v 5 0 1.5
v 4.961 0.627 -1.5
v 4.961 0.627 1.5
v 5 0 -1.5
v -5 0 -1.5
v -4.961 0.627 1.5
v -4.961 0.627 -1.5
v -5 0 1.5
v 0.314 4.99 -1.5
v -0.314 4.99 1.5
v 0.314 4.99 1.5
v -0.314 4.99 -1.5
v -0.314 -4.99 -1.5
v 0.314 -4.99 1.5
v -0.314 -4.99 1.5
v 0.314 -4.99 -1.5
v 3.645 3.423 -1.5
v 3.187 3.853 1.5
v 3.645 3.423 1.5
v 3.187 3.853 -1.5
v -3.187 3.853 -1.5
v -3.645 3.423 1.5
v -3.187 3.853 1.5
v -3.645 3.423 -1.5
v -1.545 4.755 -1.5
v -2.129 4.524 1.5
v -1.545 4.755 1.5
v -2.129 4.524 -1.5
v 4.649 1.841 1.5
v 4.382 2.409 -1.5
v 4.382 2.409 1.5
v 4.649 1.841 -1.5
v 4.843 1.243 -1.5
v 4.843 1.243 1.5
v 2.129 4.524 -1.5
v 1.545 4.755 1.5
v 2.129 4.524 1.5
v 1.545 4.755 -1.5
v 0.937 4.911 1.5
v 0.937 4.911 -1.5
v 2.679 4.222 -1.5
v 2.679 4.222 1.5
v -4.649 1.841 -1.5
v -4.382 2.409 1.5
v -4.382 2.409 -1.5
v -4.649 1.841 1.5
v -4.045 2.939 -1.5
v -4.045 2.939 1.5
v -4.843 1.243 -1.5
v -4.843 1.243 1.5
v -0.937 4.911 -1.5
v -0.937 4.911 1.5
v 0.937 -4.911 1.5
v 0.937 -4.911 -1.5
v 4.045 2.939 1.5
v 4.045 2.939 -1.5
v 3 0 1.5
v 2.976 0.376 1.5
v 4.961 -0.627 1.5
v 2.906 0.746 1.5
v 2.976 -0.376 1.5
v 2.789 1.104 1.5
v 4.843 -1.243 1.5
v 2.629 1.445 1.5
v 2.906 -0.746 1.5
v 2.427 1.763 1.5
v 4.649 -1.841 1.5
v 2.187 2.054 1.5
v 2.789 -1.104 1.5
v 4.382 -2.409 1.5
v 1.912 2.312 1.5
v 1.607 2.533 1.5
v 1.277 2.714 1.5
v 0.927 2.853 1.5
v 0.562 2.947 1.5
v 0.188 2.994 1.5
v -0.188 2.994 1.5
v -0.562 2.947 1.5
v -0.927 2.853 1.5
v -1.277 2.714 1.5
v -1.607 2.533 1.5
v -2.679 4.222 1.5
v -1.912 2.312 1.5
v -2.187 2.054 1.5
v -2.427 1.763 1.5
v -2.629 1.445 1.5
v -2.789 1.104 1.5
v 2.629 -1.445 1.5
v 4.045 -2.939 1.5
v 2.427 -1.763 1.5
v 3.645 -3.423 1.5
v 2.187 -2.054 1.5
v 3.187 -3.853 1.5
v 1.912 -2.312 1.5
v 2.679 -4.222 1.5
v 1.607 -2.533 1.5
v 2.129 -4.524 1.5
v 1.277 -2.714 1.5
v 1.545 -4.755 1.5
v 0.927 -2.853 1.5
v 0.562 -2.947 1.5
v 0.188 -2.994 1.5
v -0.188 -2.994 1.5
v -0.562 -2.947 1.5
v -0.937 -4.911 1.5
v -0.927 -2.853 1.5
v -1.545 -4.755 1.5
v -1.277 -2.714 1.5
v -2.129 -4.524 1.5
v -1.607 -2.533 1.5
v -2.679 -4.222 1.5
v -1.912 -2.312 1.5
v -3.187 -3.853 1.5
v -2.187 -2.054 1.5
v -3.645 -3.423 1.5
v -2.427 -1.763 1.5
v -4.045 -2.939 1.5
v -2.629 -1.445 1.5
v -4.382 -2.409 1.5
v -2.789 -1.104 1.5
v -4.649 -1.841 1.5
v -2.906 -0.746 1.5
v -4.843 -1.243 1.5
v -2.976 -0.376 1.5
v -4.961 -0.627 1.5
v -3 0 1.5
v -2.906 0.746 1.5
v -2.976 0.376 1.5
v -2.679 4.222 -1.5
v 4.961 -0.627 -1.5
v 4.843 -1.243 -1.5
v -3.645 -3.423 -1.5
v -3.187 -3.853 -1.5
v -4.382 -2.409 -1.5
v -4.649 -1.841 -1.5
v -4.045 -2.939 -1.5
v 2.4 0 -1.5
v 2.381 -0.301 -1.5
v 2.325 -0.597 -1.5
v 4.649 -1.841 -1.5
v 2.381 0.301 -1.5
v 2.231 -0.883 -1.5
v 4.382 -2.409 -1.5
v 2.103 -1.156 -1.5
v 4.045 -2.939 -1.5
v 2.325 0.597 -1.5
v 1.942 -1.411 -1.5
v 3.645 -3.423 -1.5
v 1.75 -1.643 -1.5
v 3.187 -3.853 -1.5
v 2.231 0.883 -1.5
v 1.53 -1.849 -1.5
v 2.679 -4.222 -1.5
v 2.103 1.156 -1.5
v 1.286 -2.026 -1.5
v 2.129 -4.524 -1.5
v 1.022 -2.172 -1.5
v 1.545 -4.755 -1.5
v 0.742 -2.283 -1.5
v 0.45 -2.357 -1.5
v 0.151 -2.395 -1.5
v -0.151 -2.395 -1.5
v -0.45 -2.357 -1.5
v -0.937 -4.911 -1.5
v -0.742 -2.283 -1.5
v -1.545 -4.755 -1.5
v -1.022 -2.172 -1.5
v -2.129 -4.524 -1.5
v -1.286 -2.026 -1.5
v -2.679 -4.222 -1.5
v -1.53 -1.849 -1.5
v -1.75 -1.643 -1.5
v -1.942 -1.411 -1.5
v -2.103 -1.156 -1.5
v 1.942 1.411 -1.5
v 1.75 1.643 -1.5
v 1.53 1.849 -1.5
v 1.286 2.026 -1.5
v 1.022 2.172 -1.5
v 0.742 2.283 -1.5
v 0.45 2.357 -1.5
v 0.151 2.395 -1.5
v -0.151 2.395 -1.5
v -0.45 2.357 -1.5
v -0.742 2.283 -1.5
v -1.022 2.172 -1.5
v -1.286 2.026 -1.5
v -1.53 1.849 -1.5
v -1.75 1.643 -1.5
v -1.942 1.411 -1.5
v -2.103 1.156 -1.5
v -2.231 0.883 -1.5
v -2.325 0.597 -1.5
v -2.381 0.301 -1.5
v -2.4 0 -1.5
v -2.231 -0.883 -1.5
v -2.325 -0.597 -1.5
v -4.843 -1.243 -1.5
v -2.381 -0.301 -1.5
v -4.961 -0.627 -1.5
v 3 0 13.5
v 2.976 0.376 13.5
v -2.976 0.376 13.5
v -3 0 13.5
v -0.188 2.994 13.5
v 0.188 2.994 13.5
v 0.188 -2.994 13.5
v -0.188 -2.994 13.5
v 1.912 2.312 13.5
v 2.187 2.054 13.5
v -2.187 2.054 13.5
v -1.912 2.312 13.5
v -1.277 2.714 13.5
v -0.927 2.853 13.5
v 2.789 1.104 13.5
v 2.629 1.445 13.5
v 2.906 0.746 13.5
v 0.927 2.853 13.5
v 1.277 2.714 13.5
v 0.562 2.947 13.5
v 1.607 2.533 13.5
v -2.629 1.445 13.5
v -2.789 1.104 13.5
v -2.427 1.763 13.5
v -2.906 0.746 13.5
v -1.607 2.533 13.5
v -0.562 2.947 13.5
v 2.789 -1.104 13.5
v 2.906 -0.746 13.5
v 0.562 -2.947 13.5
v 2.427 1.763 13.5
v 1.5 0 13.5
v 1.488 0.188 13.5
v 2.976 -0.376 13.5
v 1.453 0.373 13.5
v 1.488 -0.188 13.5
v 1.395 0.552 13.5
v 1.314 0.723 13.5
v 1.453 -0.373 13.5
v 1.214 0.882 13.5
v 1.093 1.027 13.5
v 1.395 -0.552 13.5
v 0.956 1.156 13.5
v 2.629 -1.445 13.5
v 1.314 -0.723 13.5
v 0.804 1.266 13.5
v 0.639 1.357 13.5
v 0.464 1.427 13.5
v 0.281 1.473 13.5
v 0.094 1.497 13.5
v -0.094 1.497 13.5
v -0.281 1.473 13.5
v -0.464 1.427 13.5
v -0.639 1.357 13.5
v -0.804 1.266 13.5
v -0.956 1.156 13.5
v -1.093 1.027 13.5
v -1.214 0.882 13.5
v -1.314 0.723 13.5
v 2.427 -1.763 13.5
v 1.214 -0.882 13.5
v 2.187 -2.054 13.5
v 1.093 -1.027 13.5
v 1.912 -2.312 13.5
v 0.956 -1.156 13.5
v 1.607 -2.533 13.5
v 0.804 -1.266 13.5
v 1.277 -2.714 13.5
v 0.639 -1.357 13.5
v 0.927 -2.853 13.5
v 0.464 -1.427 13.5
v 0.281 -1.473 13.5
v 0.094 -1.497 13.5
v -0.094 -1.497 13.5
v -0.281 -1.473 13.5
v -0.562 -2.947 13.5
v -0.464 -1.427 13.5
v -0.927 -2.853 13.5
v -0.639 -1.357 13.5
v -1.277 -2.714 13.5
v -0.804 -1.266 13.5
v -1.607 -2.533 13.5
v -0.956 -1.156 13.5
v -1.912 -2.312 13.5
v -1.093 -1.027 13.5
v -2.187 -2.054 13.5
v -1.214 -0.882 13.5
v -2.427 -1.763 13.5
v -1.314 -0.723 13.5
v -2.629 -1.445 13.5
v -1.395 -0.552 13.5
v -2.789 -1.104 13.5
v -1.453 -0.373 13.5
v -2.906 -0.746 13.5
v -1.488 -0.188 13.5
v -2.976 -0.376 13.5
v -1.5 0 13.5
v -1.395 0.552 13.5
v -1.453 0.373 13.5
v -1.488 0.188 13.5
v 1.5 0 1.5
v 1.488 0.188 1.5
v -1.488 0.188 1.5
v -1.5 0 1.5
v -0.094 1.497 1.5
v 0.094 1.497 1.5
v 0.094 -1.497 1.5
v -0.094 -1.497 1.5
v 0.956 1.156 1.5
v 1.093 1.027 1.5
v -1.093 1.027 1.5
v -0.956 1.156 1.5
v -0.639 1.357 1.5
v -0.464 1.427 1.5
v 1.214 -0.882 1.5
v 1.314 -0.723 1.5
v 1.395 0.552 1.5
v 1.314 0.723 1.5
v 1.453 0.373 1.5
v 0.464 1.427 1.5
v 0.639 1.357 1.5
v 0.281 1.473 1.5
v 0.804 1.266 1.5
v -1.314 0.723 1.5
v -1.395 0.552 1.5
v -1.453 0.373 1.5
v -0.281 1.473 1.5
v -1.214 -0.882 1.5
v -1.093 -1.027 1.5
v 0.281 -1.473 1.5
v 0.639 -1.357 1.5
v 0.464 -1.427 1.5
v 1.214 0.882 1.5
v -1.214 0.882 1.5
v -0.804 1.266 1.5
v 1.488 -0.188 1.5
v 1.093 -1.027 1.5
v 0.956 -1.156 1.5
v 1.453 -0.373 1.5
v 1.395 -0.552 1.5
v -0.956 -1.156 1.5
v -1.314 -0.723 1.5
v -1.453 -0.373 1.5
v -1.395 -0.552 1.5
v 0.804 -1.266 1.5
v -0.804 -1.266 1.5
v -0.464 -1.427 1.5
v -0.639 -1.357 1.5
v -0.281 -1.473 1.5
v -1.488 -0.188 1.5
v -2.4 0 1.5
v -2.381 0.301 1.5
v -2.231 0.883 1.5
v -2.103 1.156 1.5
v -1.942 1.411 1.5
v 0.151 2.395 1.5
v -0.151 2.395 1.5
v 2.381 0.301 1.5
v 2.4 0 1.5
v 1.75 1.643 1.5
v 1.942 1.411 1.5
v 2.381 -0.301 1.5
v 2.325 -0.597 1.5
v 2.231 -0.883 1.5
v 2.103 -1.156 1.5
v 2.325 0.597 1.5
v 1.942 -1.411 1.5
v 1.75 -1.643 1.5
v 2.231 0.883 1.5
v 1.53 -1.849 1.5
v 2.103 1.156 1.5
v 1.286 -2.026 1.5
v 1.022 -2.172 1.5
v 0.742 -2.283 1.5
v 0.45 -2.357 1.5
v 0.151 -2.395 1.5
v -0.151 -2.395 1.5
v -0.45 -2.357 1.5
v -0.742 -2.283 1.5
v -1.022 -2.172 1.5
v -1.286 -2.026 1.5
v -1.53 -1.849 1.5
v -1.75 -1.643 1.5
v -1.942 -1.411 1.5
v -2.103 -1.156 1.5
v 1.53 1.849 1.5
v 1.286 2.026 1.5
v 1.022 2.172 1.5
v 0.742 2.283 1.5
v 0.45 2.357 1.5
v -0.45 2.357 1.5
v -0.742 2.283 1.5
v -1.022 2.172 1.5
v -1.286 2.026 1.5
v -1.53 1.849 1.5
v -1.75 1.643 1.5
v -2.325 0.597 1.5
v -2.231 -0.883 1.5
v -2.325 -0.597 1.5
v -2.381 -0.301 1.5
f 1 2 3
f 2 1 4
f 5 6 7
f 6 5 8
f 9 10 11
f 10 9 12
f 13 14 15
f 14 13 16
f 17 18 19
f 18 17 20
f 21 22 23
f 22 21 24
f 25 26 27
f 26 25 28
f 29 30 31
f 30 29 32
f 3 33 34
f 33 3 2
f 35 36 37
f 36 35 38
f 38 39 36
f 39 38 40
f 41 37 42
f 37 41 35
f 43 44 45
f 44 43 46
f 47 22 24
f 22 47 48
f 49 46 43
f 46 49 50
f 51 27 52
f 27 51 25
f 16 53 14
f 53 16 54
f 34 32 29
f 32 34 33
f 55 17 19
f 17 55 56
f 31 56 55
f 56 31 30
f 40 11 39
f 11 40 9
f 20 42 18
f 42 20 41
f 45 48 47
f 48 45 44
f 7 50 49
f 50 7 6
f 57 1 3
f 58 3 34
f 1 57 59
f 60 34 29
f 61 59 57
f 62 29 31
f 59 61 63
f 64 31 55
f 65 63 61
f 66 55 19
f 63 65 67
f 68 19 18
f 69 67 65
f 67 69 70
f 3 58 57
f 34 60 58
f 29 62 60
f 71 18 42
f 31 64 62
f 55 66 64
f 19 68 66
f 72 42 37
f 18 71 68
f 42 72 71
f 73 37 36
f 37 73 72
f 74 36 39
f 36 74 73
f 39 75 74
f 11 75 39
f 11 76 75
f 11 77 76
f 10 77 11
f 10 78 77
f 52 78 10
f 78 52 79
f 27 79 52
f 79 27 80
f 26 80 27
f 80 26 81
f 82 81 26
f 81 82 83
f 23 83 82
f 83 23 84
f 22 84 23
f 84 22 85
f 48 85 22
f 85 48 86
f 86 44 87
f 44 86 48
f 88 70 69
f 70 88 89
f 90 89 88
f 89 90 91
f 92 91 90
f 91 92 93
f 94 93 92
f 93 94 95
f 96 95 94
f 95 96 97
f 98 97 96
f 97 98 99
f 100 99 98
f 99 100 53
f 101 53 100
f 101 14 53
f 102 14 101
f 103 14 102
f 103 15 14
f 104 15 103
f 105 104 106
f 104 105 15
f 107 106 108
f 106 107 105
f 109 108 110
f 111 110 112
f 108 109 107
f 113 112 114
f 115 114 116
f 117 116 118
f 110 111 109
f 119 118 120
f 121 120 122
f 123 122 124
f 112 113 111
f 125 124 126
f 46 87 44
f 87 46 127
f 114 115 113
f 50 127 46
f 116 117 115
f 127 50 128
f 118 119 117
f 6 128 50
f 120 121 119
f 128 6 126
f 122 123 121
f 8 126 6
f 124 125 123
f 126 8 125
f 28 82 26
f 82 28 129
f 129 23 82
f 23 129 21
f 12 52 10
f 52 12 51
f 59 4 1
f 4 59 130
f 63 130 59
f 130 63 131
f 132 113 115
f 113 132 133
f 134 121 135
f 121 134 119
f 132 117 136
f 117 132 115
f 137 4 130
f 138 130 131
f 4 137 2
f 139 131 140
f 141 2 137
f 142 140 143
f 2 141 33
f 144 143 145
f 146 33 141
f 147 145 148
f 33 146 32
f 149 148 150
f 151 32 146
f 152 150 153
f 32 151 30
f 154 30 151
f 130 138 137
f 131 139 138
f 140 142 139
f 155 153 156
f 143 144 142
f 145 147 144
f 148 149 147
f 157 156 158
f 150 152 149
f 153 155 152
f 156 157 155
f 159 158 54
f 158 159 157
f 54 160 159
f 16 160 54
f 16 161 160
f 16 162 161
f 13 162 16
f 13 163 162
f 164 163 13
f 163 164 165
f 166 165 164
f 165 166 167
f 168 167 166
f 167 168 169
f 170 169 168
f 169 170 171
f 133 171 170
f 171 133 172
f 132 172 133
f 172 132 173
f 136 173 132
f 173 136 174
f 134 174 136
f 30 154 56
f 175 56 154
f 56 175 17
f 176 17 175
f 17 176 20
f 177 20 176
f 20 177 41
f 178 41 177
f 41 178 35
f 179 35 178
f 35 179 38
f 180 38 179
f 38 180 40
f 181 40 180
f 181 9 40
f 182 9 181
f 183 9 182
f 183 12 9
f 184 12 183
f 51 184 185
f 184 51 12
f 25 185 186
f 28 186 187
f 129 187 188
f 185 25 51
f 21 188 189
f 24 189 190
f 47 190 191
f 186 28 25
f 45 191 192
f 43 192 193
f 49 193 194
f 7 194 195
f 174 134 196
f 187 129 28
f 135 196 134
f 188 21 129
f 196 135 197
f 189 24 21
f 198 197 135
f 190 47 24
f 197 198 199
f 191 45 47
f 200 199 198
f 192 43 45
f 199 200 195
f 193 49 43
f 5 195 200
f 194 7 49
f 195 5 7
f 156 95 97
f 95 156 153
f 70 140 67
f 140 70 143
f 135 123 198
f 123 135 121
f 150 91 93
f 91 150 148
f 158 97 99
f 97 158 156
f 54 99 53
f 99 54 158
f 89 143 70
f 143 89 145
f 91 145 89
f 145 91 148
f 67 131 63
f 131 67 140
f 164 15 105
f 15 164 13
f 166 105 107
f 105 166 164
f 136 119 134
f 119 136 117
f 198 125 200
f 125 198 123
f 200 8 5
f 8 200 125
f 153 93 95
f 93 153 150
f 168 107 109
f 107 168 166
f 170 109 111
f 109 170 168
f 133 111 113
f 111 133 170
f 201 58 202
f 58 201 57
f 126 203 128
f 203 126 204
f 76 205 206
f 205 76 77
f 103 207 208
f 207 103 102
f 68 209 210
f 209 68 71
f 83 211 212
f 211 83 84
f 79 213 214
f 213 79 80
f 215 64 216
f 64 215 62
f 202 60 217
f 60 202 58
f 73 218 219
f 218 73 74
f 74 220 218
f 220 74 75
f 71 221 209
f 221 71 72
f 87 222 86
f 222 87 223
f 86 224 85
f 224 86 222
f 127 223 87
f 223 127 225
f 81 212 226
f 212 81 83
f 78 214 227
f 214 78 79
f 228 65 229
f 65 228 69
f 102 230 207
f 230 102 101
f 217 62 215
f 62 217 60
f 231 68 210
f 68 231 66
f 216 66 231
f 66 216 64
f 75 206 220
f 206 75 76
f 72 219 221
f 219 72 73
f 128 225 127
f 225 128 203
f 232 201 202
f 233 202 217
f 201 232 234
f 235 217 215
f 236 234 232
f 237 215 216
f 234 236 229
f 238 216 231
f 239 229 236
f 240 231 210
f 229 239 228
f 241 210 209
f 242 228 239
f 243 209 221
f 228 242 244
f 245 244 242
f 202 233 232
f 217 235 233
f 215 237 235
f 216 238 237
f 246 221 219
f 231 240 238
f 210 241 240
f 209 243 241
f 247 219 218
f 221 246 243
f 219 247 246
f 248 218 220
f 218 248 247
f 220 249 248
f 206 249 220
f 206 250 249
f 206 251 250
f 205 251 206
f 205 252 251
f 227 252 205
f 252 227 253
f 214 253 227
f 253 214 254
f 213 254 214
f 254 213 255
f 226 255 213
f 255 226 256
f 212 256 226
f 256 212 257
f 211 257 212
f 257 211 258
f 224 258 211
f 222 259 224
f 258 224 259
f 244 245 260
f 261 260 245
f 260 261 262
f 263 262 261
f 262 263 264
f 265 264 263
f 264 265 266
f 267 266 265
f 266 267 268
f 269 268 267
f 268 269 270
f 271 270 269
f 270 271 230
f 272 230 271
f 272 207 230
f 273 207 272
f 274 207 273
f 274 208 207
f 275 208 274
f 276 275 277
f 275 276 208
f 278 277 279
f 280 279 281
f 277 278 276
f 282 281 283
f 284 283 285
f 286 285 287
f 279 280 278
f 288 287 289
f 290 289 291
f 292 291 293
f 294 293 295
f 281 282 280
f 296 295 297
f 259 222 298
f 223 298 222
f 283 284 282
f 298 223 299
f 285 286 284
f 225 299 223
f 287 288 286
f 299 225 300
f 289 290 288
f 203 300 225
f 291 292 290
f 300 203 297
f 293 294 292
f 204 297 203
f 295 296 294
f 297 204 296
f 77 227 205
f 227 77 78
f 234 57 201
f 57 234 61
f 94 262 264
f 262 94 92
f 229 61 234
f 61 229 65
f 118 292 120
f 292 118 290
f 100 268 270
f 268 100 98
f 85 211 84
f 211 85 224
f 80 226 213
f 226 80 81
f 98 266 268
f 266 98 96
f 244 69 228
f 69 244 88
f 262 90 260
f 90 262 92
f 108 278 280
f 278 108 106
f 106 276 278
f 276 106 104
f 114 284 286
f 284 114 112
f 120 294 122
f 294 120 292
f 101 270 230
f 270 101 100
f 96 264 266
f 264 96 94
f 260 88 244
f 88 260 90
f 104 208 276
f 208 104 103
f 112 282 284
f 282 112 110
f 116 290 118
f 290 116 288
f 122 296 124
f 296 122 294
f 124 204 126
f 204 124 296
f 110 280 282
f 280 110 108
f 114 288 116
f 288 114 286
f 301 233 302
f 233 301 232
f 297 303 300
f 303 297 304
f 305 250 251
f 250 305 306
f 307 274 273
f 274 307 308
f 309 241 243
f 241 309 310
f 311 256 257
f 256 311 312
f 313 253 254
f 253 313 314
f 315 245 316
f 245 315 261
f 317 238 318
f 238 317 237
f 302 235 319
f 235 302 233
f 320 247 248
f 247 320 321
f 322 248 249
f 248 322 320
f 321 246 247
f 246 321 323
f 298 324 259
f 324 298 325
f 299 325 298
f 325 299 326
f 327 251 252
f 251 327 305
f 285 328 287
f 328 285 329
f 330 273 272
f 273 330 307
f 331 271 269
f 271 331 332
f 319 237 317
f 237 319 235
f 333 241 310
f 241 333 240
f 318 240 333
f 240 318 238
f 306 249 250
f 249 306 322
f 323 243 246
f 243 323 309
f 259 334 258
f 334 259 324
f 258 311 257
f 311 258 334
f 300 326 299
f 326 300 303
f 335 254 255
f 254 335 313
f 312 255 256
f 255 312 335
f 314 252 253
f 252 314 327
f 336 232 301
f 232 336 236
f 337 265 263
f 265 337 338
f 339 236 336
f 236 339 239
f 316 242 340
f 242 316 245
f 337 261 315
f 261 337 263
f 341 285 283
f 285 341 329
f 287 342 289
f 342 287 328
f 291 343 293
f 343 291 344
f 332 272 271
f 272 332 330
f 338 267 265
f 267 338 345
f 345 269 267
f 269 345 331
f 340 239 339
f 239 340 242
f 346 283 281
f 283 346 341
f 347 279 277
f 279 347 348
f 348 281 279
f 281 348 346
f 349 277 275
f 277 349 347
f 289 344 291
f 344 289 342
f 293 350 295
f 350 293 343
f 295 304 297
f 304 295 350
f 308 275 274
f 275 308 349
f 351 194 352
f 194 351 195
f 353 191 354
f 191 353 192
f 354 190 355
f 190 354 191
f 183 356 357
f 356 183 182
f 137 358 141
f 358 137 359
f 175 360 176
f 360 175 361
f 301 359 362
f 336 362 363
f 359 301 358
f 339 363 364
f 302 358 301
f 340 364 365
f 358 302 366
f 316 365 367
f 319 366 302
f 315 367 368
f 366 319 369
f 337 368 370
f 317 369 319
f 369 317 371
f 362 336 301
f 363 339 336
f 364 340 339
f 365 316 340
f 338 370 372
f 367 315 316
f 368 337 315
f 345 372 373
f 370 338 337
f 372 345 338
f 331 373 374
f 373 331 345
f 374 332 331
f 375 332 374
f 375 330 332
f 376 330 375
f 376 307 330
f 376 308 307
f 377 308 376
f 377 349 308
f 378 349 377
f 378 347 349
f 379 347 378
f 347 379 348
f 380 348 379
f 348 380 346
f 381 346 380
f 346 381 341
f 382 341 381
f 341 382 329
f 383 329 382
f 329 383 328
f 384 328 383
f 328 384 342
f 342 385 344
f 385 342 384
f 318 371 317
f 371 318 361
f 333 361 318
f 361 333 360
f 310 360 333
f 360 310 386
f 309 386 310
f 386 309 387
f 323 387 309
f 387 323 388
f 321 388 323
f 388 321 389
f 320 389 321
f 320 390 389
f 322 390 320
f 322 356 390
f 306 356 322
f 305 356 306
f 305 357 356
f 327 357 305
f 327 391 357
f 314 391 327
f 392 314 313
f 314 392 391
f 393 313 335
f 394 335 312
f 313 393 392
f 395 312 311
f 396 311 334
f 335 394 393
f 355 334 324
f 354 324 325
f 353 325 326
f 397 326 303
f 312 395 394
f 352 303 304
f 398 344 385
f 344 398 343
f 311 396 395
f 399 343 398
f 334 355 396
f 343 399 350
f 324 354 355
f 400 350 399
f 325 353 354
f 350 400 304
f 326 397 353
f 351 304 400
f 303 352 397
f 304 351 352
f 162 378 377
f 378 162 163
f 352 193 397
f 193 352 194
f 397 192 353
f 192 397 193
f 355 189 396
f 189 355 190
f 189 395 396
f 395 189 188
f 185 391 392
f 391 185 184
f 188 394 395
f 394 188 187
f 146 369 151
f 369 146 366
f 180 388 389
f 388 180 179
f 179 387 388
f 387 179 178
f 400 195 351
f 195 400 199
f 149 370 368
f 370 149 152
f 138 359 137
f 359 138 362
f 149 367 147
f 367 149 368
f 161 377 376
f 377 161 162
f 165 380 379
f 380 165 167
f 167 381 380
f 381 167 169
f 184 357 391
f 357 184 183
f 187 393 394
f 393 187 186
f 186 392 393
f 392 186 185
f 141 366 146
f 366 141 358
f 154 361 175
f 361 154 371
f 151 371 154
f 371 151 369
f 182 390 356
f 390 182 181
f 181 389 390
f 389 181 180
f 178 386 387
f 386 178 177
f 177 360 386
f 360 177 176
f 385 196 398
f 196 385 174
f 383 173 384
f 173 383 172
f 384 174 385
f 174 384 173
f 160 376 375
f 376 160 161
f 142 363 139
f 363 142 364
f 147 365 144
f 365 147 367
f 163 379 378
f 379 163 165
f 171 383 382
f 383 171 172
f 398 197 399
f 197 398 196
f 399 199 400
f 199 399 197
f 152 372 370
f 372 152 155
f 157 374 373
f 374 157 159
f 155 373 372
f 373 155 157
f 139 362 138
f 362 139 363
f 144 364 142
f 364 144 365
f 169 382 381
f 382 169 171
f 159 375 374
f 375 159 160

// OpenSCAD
$fn = 50;


difference() {
	union() {
		translate(v = [0, 0, -1.5000000000]) {
			rotate(a = [0, 0, 0]) {
				cylinder(h = 3, r = 5.0000000000);
			}
		}
		translate(v = [0, 0, -1.5000000000]) {
			rotate(a = [0, 0, 0]) {
				cylinder(h = 15, r = 3.0000000000);
			}
		}
	}
	union() {
		translate(v = [0, 0, -125.0000000000]) {
			rotate(a = [0, 0, 0]) {
				cylinder(h = 250, r = 1.5000000000);
			}
		}
		#translate(v = [0, 0, 1.5000000000]) {
			rotate(a = [0, 180, 0]) {
				cylinder(h = 3, r1 = 2.4000000000, r2 = 2.4000000000);
			}
		}
		#translate(v = [0, 0, 13.5000000000]) {
			rotate(a = [0, 180, 0]) {
				cylinder(h = 15, r = 1.5000000000);
			}
		}
	}
}
